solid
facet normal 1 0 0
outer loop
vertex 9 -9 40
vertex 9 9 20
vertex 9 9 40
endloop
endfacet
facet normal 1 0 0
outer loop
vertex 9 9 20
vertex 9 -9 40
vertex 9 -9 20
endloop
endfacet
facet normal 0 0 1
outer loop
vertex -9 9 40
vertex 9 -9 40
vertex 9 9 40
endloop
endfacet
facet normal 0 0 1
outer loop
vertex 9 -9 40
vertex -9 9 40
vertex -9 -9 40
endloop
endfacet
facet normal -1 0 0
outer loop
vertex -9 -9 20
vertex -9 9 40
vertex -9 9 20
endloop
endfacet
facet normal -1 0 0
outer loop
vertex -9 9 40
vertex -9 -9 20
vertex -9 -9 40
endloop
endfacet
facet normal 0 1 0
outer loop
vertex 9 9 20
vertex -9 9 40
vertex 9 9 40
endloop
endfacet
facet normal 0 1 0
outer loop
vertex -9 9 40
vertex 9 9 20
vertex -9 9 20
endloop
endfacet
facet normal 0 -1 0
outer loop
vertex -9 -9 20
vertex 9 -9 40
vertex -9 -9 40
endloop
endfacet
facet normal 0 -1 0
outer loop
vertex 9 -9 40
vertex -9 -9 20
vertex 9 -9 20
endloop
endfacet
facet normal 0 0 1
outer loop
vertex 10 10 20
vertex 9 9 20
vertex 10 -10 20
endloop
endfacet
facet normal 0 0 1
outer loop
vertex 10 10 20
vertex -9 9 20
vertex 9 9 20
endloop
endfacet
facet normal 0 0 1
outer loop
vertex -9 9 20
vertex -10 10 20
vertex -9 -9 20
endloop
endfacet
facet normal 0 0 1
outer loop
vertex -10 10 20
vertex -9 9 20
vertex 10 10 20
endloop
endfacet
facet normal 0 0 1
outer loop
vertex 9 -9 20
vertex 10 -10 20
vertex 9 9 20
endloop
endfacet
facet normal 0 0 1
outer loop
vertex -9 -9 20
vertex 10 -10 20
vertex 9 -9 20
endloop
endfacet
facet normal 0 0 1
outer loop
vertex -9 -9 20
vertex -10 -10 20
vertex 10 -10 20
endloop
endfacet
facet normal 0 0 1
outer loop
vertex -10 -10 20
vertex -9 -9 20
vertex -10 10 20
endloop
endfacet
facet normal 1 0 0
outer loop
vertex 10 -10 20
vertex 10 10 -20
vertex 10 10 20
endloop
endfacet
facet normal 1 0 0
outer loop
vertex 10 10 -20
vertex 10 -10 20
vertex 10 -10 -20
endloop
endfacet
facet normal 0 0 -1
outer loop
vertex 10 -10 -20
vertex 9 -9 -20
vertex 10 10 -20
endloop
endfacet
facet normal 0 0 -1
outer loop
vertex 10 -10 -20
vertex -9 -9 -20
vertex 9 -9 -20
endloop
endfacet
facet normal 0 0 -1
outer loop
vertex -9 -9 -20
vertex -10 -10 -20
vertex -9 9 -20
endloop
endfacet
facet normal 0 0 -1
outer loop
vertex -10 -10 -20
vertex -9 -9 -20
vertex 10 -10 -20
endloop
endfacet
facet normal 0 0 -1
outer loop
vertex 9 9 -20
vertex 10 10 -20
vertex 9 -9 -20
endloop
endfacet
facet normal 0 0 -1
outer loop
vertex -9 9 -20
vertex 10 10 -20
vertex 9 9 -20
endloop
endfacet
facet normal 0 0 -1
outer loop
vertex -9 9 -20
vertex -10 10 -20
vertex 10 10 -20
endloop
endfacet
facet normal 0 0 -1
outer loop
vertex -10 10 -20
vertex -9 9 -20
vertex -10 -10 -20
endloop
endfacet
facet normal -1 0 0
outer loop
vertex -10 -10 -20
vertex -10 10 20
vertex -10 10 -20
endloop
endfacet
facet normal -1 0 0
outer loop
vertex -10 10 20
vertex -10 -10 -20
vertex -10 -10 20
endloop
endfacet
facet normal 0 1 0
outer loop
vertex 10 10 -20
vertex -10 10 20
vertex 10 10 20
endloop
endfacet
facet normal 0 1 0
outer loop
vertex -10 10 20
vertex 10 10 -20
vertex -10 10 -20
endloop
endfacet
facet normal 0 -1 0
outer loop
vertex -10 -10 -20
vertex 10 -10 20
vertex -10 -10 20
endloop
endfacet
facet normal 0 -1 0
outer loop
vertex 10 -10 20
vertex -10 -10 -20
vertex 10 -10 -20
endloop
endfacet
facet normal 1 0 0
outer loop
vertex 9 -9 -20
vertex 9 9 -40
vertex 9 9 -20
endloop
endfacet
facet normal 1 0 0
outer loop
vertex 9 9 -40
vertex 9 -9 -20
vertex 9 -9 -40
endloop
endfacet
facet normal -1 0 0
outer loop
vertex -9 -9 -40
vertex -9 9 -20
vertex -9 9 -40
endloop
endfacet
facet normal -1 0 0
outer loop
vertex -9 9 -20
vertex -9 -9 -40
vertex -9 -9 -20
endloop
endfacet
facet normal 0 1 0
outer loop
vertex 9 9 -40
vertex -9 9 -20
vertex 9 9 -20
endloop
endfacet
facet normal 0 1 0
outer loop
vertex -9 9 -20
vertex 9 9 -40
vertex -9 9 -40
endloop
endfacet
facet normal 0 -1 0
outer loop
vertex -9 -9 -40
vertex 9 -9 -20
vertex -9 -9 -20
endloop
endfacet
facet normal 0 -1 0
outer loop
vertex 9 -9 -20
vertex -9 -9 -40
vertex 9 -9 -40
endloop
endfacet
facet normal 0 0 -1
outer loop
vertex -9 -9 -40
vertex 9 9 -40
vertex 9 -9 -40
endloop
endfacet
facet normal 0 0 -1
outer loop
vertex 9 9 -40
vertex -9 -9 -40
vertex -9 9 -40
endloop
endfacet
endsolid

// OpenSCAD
// Dimensions for the components
central_block_size = [20, 20, 40]; // Central block dimensions
spacer_block_size = [18, 18, 10];  // Spacer block dimensions
connector_block_size = [18, 18, 10]; // Connector block dimensions

// Function to create a central block
module central_block() {
    // Adjusted to ensure uniform rectangular prism
    cube(central_block_size, center = true);
}

// Function to create a spacer block
module spacer_block() {
    // Adjusted to ensure uniform rectangular prism
    cube(spacer_block_size, center = true);
}

// Function to create a connector block
module connector_block() {
    // Adjusted to ensure uniform rectangular prism
    cube(connector_block_size, center = true);
}

// Assembly of the model
module assembly() {
    // Layer 1: Top connector block
    translate([0, 0, central_block_size[2] / 2 + spacer_block_size[2] + connector_block_size[2] / 2])
        connector_block();

    // Layer 2: Top spacer block
    translate([0, 0, central_block_size[2] / 2 + spacer_block_size[2] / 2])
        spacer_block();

    // Layer 3: Central block
    translate([0, 0, 0])
        central_block();

    // Layer 4: Bottom spacer block
    translate([0, 0, -(central_block_size[2] / 2 + spacer_block_size[2] / 2)])
        spacer_block();

    // Layer 5: Bottom connector block
    translate([0, 0, -(central_block_size[2] / 2 + spacer_block_size[2] + connector_block_size[2] / 2)])
        connector_block();
}

// Render the assembly
assembly();
